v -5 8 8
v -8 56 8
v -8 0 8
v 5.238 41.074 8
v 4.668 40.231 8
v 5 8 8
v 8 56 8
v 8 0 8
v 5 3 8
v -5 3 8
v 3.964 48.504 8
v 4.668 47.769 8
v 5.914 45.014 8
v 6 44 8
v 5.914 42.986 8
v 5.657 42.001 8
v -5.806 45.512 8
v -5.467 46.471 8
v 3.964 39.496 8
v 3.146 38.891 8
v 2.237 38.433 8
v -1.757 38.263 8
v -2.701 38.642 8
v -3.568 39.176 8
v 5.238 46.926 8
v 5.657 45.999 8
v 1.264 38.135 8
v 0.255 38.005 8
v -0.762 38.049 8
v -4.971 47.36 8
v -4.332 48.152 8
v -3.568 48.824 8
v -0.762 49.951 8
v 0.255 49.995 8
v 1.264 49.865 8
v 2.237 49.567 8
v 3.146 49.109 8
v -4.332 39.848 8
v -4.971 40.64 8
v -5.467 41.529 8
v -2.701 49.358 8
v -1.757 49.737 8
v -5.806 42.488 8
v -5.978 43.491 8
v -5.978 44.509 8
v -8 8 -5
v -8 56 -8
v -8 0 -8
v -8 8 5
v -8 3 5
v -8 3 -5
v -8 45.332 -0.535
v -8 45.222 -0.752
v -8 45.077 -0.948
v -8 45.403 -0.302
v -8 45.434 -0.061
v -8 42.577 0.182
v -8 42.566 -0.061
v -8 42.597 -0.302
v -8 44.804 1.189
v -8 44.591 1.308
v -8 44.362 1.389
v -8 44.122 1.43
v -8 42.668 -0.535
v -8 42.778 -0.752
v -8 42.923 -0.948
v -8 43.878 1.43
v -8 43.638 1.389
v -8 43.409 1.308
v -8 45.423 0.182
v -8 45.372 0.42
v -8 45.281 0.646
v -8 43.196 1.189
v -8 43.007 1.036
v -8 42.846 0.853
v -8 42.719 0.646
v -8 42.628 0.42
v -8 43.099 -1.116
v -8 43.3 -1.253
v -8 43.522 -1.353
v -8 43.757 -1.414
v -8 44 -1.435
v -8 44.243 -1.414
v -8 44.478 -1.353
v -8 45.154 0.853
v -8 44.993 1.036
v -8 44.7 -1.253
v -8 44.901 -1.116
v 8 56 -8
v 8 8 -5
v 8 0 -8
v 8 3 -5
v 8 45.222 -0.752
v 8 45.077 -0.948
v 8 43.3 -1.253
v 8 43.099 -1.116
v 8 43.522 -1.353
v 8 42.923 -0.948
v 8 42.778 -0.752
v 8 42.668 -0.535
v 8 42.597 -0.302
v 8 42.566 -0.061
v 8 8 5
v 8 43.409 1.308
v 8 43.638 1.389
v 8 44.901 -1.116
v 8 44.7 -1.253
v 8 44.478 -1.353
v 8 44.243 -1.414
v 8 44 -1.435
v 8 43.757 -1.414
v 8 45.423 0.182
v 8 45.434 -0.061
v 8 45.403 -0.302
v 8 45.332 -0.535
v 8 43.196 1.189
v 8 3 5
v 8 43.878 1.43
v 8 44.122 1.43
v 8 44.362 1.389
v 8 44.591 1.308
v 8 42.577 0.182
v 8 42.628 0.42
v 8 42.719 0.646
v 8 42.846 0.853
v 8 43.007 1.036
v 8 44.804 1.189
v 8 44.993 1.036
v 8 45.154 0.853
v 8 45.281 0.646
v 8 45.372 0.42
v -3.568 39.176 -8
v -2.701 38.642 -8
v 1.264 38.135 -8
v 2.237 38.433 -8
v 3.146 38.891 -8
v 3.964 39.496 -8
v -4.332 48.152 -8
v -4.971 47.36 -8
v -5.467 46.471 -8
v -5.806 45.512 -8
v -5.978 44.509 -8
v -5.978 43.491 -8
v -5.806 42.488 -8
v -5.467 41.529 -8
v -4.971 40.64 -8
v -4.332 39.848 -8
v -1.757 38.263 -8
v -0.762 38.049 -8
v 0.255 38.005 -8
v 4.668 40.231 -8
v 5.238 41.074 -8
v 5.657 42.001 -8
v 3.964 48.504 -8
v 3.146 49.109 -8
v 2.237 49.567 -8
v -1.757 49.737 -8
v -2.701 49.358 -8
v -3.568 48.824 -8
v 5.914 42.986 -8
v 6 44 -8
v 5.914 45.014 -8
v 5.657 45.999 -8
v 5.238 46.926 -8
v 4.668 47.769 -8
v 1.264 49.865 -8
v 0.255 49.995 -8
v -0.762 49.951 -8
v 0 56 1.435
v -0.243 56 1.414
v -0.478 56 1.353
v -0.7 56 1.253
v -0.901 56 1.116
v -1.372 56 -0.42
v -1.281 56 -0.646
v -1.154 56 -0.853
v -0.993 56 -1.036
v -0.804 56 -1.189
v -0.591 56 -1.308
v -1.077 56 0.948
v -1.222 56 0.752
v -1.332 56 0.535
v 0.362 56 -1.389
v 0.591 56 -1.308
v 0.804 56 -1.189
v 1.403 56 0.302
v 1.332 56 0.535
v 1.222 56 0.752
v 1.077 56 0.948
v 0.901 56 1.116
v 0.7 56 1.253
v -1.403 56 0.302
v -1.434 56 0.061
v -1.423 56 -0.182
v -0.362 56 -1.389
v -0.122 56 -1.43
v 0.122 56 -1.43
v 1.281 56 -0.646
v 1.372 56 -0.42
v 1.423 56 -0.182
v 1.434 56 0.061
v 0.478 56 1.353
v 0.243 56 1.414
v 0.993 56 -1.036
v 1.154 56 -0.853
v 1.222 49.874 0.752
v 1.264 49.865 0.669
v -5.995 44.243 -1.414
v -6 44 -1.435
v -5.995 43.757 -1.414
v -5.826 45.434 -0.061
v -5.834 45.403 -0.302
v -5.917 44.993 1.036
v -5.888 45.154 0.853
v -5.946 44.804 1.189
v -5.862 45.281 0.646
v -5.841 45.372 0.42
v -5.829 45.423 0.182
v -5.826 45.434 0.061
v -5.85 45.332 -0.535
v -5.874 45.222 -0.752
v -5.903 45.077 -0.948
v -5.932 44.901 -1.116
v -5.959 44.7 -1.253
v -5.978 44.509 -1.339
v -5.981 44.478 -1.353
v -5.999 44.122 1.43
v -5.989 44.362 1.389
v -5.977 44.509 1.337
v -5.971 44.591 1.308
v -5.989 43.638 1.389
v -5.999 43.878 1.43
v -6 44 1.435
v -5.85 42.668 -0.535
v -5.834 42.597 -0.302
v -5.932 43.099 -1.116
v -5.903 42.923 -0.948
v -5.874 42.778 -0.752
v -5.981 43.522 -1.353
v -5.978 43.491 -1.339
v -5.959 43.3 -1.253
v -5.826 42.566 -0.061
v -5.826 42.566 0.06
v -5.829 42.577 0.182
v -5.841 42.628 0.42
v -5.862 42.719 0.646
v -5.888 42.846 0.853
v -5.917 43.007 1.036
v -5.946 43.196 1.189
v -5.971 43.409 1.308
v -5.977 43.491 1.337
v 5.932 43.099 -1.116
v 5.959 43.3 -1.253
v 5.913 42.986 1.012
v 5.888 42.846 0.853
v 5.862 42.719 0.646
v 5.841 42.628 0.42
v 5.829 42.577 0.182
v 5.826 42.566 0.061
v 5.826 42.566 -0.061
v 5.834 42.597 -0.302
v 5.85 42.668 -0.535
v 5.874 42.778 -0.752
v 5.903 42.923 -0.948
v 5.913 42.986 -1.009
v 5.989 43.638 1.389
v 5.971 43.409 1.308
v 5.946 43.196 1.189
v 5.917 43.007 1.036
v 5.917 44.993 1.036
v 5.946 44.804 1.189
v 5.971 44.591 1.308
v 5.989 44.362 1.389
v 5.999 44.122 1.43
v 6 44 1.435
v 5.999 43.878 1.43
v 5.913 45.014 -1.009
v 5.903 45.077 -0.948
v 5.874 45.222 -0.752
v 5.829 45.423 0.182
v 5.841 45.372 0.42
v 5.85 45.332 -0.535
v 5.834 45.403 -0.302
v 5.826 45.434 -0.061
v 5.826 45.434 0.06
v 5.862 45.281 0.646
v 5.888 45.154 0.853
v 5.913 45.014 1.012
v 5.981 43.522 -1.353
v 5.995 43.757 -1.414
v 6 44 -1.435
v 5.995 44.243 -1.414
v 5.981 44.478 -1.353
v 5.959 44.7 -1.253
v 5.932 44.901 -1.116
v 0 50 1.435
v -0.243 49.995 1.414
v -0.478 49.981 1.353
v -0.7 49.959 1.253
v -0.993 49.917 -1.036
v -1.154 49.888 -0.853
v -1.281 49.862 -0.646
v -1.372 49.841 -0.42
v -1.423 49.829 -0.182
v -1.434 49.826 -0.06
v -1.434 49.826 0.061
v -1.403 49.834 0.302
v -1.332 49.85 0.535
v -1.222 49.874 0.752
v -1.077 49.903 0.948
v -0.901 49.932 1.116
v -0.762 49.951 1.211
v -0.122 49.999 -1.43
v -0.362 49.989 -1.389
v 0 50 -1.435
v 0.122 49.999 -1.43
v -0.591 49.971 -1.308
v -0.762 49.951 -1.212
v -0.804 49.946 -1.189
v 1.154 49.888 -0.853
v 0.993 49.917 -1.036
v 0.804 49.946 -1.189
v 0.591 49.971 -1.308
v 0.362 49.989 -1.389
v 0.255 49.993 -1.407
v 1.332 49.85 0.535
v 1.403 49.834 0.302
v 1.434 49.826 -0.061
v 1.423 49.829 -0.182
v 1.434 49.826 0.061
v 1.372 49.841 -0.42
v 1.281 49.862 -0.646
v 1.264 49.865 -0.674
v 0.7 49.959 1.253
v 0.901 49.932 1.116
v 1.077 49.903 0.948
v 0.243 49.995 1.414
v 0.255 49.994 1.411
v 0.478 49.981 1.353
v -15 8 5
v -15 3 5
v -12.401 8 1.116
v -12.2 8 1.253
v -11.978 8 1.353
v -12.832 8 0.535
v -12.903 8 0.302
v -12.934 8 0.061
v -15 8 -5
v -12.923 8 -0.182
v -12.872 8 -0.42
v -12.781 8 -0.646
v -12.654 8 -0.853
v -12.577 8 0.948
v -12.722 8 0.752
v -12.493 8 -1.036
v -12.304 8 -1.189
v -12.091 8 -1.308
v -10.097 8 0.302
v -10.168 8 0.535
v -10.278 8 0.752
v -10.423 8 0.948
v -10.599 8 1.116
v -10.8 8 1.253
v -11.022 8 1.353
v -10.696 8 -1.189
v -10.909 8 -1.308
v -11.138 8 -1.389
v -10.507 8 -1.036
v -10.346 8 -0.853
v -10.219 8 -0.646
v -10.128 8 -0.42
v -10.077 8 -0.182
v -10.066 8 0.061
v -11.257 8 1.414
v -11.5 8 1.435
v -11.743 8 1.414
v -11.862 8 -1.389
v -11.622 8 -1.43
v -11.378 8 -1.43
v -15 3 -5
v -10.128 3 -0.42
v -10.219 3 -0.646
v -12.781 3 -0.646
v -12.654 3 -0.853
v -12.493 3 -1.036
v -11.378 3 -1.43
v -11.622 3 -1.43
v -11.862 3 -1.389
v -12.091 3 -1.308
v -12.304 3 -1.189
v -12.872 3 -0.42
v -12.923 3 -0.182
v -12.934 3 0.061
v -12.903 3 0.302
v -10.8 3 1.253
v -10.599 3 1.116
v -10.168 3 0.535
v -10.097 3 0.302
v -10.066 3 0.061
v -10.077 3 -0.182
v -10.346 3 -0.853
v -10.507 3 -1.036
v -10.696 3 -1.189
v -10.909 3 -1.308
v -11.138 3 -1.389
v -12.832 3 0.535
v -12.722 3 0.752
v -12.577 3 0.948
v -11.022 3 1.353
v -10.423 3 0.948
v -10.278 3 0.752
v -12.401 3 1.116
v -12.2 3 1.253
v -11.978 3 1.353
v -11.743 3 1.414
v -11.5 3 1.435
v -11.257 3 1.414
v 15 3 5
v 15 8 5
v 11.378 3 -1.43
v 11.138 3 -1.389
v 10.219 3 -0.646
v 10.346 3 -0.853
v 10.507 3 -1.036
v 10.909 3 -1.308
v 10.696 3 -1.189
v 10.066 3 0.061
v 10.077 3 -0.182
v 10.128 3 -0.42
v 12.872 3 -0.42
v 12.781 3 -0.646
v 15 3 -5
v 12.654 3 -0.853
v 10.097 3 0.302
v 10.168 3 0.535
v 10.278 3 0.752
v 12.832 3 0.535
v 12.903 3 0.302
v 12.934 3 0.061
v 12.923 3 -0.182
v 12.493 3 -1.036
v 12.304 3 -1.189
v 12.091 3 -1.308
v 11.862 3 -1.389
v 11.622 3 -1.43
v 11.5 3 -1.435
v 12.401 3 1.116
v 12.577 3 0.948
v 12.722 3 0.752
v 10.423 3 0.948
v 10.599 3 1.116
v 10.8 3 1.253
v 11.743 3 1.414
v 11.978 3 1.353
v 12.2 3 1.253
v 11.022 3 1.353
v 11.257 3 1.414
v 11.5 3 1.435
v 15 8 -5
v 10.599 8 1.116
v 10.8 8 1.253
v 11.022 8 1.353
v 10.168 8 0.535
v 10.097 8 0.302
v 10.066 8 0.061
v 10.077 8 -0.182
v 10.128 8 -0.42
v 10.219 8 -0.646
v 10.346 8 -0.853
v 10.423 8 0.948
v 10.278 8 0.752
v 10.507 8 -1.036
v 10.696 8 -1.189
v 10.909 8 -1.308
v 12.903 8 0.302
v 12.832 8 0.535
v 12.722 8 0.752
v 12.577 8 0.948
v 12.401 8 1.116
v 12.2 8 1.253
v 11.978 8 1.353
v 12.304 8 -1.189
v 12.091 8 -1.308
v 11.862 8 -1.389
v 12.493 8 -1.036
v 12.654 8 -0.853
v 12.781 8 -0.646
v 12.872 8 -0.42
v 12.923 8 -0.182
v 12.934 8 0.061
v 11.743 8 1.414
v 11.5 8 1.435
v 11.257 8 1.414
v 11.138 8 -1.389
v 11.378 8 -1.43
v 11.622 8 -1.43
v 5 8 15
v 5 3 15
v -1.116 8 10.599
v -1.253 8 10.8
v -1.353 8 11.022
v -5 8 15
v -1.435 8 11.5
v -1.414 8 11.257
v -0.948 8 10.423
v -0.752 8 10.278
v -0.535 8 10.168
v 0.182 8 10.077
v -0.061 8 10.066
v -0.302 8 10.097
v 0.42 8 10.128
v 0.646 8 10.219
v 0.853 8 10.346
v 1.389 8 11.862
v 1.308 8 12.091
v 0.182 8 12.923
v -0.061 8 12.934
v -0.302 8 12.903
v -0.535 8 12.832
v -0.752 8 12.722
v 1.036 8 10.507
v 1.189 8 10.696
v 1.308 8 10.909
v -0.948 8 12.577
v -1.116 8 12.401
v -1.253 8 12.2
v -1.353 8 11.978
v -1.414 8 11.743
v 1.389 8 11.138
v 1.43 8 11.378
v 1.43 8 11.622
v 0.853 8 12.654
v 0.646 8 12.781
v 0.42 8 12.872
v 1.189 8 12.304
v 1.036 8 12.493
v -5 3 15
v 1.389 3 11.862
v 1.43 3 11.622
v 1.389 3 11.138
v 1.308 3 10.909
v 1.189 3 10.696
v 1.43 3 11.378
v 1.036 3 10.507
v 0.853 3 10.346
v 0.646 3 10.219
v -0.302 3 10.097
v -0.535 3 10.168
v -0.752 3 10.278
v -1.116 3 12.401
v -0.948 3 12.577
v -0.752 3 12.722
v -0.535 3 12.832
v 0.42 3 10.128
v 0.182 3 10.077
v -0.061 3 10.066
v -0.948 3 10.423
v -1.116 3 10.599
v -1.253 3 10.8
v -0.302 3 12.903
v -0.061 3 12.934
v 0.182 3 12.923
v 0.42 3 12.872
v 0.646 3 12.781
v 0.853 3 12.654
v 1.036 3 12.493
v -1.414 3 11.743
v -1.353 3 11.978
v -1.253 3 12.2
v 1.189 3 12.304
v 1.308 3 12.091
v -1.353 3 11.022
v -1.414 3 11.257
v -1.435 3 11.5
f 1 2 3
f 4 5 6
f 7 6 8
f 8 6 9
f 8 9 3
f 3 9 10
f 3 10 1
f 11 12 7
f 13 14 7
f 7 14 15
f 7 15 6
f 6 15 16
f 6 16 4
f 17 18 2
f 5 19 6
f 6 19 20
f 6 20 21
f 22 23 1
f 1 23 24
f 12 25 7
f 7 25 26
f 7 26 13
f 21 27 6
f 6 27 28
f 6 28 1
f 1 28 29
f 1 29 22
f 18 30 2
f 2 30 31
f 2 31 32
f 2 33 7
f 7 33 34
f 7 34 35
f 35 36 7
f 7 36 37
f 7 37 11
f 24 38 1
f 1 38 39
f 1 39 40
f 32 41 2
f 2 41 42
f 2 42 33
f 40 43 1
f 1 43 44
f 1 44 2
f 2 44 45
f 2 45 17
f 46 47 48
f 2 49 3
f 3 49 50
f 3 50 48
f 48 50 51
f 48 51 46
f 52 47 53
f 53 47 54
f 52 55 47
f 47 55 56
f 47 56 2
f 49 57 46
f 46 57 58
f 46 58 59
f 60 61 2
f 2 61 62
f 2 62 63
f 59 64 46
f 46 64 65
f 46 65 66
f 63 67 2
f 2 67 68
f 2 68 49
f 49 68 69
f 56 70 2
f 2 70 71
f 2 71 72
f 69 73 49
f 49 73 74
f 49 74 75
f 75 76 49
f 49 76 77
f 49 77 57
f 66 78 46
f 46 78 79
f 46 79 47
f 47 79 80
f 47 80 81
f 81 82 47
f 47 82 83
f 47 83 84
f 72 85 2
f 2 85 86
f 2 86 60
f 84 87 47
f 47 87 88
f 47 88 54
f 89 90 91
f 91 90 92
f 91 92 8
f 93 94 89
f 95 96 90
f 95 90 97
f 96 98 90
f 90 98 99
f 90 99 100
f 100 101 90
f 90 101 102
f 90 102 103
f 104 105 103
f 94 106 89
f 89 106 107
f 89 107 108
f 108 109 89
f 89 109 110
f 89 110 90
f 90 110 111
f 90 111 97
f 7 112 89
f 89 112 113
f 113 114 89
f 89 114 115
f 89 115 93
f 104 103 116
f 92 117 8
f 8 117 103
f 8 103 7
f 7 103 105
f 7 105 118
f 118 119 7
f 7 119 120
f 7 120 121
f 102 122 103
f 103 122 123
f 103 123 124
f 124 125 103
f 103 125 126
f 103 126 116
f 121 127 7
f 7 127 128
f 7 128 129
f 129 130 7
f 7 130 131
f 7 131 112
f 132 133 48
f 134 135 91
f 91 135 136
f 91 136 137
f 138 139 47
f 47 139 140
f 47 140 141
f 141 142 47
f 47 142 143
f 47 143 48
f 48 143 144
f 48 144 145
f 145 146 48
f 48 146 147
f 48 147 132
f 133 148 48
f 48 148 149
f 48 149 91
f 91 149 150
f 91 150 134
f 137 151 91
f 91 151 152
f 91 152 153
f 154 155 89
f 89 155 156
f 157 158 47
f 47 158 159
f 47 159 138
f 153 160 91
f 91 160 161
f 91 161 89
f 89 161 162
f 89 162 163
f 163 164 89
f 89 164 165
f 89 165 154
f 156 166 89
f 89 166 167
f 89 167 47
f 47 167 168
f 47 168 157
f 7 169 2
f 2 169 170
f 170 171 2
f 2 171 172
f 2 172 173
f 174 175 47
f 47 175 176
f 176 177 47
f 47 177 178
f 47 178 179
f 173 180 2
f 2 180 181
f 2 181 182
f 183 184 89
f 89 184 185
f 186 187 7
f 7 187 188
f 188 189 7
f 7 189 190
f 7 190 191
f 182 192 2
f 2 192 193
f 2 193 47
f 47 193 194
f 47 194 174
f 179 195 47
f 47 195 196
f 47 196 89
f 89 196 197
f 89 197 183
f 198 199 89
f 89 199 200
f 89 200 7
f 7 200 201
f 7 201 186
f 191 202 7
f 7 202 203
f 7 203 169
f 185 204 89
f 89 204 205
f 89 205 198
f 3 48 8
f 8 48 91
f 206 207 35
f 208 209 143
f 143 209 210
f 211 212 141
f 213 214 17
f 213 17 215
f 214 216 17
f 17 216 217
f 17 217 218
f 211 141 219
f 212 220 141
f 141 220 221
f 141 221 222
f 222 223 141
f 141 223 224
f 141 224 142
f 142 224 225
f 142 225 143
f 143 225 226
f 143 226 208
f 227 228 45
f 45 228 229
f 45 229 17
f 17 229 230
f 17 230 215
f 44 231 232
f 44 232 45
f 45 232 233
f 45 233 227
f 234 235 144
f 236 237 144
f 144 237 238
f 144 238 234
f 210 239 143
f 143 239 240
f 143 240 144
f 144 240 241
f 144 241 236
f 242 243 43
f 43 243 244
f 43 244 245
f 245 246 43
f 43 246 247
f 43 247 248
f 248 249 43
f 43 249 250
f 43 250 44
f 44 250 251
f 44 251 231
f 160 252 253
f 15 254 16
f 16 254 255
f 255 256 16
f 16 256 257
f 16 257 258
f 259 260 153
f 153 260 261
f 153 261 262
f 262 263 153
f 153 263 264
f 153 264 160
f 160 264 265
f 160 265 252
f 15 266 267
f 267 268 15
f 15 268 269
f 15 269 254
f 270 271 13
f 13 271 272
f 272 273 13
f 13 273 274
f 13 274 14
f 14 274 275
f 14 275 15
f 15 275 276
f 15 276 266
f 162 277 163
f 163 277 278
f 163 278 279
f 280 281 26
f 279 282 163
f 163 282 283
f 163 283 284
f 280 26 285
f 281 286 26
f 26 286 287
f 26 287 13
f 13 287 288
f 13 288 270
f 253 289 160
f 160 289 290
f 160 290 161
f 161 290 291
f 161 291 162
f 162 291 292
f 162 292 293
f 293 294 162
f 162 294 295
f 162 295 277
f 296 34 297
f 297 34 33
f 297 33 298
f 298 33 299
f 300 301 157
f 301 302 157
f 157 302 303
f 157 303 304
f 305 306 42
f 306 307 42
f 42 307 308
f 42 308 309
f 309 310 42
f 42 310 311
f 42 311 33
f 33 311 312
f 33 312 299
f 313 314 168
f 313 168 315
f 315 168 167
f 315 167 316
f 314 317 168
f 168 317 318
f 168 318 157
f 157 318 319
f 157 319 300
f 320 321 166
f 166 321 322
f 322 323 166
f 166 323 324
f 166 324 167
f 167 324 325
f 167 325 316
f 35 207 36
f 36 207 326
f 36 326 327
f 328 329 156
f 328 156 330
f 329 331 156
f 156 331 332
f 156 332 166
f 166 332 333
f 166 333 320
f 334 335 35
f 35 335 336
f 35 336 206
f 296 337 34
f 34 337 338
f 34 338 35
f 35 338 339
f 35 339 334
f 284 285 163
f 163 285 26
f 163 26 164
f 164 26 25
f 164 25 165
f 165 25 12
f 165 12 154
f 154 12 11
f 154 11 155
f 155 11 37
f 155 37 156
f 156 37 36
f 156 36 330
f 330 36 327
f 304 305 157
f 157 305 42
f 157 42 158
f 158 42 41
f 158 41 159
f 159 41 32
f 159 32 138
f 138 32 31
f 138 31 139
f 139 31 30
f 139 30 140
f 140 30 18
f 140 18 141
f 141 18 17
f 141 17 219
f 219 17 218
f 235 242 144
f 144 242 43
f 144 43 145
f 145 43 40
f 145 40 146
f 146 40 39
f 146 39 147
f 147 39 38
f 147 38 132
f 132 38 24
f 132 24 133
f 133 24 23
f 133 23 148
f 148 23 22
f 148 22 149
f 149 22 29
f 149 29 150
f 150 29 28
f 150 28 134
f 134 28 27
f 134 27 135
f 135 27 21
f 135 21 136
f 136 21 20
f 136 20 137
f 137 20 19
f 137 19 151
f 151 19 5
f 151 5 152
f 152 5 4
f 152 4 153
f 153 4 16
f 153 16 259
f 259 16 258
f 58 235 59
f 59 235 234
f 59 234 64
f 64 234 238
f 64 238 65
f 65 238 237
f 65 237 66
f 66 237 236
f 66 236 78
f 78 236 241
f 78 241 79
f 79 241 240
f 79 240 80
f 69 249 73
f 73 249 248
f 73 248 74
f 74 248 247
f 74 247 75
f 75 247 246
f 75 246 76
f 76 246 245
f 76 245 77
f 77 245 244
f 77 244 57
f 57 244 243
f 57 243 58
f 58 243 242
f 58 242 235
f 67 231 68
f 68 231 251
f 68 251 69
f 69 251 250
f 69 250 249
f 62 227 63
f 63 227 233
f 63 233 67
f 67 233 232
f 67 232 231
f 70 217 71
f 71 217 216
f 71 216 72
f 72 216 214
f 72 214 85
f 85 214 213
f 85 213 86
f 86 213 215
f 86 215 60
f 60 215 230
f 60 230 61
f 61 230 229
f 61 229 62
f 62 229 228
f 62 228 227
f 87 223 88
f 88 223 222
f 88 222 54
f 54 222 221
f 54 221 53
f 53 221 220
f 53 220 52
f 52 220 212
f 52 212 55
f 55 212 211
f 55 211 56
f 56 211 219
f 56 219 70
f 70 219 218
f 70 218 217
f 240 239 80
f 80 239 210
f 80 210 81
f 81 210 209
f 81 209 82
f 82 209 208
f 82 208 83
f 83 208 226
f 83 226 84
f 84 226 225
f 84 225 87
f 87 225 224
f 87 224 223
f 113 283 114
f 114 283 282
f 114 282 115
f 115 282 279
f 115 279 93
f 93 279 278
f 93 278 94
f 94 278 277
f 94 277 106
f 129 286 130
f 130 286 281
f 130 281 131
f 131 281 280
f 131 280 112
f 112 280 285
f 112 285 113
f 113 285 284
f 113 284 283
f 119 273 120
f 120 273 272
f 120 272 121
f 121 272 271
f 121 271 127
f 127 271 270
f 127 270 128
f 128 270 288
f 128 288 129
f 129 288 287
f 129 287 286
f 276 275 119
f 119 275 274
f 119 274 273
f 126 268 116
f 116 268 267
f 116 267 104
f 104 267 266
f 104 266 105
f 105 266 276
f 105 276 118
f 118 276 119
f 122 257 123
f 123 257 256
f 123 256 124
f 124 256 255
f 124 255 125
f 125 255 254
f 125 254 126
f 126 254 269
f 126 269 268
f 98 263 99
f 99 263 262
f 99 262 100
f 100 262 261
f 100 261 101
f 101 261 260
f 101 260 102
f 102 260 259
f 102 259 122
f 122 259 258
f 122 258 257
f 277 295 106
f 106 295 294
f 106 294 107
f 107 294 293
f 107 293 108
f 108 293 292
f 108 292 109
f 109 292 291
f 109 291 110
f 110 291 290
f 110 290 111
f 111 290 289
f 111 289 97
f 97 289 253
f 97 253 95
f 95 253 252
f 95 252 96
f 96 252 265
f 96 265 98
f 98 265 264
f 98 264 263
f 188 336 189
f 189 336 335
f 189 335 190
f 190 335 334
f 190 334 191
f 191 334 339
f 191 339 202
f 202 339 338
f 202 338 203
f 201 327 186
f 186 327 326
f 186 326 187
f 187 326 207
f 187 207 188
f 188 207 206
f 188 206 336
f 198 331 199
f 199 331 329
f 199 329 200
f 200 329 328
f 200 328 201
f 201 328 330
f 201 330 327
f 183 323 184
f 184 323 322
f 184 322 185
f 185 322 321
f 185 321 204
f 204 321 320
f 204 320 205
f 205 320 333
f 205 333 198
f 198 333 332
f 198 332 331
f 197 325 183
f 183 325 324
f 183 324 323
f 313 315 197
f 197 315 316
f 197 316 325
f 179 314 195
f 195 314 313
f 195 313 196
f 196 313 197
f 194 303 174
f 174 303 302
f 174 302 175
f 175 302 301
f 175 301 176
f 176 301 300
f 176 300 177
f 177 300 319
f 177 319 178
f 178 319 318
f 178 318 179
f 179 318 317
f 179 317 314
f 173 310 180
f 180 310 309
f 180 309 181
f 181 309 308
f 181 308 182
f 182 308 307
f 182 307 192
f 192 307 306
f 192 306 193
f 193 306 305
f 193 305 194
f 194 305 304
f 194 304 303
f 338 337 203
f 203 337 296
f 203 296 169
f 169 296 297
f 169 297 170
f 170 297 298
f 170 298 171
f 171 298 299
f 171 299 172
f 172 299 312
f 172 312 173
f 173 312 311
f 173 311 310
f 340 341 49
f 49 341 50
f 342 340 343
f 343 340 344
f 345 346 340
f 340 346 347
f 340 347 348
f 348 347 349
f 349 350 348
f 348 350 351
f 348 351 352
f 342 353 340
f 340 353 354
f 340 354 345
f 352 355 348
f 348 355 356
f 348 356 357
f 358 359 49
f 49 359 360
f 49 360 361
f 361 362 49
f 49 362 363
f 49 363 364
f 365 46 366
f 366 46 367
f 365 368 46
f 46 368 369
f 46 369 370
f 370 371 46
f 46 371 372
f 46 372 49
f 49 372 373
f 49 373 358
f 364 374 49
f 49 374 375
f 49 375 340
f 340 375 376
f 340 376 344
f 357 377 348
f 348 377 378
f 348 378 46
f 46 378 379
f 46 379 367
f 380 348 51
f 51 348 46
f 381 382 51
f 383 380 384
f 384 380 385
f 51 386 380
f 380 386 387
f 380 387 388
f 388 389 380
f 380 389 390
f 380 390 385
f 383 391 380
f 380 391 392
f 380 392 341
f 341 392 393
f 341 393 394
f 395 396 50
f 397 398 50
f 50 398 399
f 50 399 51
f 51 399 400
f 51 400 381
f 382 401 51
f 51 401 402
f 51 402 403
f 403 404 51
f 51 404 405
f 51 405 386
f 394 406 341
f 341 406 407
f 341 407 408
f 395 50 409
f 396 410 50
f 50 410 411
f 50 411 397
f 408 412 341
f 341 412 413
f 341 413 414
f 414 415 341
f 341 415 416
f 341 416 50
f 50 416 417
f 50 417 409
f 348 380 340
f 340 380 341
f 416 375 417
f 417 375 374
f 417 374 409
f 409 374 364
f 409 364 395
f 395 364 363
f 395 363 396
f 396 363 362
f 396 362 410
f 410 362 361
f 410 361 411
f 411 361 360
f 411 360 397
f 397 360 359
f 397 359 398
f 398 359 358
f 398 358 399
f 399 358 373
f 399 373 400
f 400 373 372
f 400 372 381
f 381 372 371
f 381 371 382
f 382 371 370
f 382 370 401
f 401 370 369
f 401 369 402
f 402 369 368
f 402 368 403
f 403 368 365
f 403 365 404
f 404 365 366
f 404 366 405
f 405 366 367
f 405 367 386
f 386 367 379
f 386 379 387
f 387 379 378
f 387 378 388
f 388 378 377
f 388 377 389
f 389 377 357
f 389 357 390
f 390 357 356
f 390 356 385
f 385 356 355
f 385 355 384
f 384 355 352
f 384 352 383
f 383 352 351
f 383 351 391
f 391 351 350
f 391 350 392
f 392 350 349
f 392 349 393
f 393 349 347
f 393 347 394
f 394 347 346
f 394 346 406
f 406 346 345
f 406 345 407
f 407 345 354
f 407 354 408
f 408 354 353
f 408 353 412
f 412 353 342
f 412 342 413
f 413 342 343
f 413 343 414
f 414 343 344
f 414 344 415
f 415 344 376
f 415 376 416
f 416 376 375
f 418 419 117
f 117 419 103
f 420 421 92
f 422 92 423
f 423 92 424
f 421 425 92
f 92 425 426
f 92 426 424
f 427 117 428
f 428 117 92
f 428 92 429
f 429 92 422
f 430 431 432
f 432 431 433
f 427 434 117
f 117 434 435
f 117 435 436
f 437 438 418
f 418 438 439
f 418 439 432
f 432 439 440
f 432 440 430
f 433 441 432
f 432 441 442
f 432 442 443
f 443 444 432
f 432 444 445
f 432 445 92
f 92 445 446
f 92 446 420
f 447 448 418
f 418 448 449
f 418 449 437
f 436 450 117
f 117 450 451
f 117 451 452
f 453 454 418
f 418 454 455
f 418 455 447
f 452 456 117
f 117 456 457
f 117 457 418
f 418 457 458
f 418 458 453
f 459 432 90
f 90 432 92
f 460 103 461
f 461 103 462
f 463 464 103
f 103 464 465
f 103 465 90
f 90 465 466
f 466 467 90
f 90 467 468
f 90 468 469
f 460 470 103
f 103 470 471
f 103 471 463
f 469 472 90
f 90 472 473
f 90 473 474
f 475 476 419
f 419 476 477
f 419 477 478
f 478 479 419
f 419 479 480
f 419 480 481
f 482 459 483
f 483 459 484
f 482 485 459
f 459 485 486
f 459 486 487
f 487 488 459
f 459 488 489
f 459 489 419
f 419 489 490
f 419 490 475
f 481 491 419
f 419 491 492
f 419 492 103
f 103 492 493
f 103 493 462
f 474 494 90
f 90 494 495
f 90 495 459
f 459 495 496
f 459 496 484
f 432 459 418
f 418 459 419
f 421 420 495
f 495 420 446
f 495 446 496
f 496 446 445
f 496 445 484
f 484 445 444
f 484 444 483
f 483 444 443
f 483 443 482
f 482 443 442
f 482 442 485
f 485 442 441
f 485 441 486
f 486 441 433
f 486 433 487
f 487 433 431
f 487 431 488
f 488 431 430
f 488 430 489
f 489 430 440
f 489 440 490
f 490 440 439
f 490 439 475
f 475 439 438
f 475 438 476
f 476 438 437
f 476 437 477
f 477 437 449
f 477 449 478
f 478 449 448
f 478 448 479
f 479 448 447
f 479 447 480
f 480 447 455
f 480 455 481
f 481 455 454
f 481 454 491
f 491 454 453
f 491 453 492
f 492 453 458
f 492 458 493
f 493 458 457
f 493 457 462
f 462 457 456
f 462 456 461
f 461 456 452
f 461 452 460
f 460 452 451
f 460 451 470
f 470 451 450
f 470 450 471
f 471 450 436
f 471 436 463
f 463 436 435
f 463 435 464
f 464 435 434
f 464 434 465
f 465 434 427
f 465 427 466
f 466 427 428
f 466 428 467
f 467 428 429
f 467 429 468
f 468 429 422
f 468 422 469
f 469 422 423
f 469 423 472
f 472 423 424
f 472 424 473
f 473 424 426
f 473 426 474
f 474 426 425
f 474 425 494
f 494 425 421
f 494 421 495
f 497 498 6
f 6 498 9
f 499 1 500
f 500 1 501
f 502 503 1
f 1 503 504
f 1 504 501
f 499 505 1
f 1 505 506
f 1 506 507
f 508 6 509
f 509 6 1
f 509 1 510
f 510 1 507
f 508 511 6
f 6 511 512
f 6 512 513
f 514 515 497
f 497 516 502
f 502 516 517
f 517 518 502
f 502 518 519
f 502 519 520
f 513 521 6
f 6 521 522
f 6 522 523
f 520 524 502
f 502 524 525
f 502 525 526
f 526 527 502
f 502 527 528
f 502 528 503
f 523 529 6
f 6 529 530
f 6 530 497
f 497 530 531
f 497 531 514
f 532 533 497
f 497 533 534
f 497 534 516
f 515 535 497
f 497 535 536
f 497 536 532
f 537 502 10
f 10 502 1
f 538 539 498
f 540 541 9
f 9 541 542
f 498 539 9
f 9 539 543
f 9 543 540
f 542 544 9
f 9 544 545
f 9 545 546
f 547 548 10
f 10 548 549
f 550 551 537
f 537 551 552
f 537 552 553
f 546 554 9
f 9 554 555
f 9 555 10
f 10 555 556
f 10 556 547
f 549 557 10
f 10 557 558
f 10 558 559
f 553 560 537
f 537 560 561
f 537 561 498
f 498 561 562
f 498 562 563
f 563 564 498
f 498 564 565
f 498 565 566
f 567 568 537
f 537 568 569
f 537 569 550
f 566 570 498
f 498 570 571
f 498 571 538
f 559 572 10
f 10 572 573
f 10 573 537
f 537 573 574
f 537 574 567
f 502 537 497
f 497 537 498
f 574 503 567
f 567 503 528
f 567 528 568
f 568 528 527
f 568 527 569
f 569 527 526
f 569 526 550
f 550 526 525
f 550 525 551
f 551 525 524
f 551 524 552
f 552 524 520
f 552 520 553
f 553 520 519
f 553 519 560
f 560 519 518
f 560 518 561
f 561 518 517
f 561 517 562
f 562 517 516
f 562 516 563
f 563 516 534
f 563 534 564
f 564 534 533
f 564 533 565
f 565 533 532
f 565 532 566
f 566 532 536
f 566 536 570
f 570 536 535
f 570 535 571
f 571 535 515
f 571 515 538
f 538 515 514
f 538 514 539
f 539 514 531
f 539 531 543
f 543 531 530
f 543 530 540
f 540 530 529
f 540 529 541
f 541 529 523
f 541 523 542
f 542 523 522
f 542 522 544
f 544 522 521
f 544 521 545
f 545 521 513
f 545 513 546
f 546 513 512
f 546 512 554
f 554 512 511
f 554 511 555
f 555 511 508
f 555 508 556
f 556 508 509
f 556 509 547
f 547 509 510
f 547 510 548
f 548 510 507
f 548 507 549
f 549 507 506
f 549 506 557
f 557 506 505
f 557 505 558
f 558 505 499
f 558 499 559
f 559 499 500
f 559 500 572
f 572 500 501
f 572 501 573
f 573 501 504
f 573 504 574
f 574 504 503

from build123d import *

# Parameters (mm, degrees)
CROQUIS1_W              = 16
CROQUIS1_H              = 16
SALIENTE_EXTRUIR1_DEPTH = 56
CORTAR_EXTRUIR1_REACH   = 18
CROQUIS2_R              = 6
CROQUIS3_R              = 1.435
CORTAR_EXTRUIR2_DEPTH   = 16
CORTAR_EXTRUIR3_REACH   = 58
CROQUIS4_R              = 1.435
CROQUIS5_W              = 10
CROQUIS5_H              = 5
SALIENTE_EXTRUIR2_DEPTH = 7
CROQUIS6_R              = 1.435
CORTAR_EXTRUIR4_DEPTH   = 5
CROQUIS7_W              = 10
CROQUIS7_H              = 5
SALIENTE_EXTRUIR3_DEPTH = 7
CORTAR_EXTRUIR5_REACH   = 10
CROQUIS8_R              = 1.435


with BuildPart() as part:
    # Croquis1 → Saliente-Extruir1 (new body)
    with BuildSketch(Plane(origin=(0, 0, 0), x_dir=(1, 0, 0), z_dir=(0, 1, 0))):
        Rectangle(CROQUIS1_W, CROQUIS1_H)
    extrude(amount=SALIENTE_EXTRUIR1_DEPTH)

    # Croquis2 → Cortar-Extruir1 (cut, up to next)
    with BuildSketch(Plane.XY.offset(8), mode=Mode.PRIVATE) as cortar_extruir1_sk1:
        with Locations((0, 44)):
            Circle(CROQUIS2_R)
    cortar_extruir1_tool1 = extrude(cortar_extruir1_sk1.sketch, amount=-CORTAR_EXTRUIR1_REACH, mode=Mode.PRIVATE) & part.part
    add(cortar_extruir1_tool1.solids().sort_by_distance((0, 44, 8))[0], mode=Mode.SUBTRACT)

    # Croquis3 → Cortar-Extruir2 (cut)
    with BuildSketch(Plane(origin=(8, 0, 0), x_dir=(0, 0, -1), z_dir=(1, 0, 0))):
        with Locations((0, 44)):
            Circle(CROQUIS3_R)
    extrude(amount=-CORTAR_EXTRUIR2_DEPTH, mode=Mode.SUBTRACT)

    # Croquis4 → Cortar-Extruir3 (cut, up to next)
    with BuildSketch(Plane(origin=(0, 56, 0), x_dir=(1, 0, 0), z_dir=(0, 1, 0)), mode=Mode.PRIVATE) as cortar_extruir3_sk1:
        Circle(CROQUIS4_R)
    cortar_extruir3_tool1 = extrude(cortar_extruir3_sk1.sketch, amount=-CORTAR_EXTRUIR3_REACH, mode=Mode.PRIVATE) & part.part
    add(cortar_extruir3_tool1.solids().sort_by_distance((0, 56, 0))[0], mode=Mode.SUBTRACT)

    # Croquis5 → Saliente-Extruir2 (add)
    with BuildSketch(Plane.ZY.offset(8)):
        with Locations((0, 5.5)):
            Rectangle(CROQUIS5_W, CROQUIS5_H)
    saliente_extruir2 = extrude(amount=SALIENTE_EXTRUIR2_DEPTH)

    # Croquis6 → Cortar-Extruir4 (cut)
    with BuildSketch(Plane(origin=(0, 8, 0), x_dir=(1, 0, 0), z_dir=(0, 1, 0))):
        with Locations((-11.5, 0)):
            Circle(CROQUIS6_R)
    cortar_extruir4 = extrude(amount=-CORTAR_EXTRUIR4_DEPTH, mode=Mode.SUBTRACT)

    # Simetría1: Saliente-Extruir2, Cortar-Extruir4 across plane
    add(saliente_extruir2.mirror(Plane(origin=(0, 0, 0), x_dir=(0, 0, 1), z_dir=(1, 0, 0))))
    add(cortar_extruir4.mirror(Plane(origin=(0, 0, 0), x_dir=(0, 0, 1), z_dir=(1, 0, 0))), mode=Mode.SUBTRACT)

    # Croquis7 → Saliente-Extruir3 (add)
    with BuildSketch(Plane.XY.offset(8)):
        with Locations((0, 5.5)):
            Rectangle(CROQUIS7_W, CROQUIS7_H)
    extrude(amount=SALIENTE_EXTRUIR3_DEPTH)

    # Croquis8 → Cortar-Extruir5 (cut, up to next)
    with BuildSketch(Plane(origin=(0, 8, 0), x_dir=(1, 0, 0), z_dir=(0, 1, 0)), mode=Mode.PRIVATE) as cortar_extruir5_sk1:
        with Locations((0, -11.5)):
            Circle(CROQUIS8_R)
    cortar_extruir5_tool1 = extrude(cortar_extruir5_sk1.sketch, amount=-CORTAR_EXTRUIR5_REACH, mode=Mode.PRIVATE) & part.part
    add(cortar_extruir5_tool1.solids().sort_by_distance((0, 8, 11.5))[0], mode=Mode.SUBTRACT)


solid = part.part
